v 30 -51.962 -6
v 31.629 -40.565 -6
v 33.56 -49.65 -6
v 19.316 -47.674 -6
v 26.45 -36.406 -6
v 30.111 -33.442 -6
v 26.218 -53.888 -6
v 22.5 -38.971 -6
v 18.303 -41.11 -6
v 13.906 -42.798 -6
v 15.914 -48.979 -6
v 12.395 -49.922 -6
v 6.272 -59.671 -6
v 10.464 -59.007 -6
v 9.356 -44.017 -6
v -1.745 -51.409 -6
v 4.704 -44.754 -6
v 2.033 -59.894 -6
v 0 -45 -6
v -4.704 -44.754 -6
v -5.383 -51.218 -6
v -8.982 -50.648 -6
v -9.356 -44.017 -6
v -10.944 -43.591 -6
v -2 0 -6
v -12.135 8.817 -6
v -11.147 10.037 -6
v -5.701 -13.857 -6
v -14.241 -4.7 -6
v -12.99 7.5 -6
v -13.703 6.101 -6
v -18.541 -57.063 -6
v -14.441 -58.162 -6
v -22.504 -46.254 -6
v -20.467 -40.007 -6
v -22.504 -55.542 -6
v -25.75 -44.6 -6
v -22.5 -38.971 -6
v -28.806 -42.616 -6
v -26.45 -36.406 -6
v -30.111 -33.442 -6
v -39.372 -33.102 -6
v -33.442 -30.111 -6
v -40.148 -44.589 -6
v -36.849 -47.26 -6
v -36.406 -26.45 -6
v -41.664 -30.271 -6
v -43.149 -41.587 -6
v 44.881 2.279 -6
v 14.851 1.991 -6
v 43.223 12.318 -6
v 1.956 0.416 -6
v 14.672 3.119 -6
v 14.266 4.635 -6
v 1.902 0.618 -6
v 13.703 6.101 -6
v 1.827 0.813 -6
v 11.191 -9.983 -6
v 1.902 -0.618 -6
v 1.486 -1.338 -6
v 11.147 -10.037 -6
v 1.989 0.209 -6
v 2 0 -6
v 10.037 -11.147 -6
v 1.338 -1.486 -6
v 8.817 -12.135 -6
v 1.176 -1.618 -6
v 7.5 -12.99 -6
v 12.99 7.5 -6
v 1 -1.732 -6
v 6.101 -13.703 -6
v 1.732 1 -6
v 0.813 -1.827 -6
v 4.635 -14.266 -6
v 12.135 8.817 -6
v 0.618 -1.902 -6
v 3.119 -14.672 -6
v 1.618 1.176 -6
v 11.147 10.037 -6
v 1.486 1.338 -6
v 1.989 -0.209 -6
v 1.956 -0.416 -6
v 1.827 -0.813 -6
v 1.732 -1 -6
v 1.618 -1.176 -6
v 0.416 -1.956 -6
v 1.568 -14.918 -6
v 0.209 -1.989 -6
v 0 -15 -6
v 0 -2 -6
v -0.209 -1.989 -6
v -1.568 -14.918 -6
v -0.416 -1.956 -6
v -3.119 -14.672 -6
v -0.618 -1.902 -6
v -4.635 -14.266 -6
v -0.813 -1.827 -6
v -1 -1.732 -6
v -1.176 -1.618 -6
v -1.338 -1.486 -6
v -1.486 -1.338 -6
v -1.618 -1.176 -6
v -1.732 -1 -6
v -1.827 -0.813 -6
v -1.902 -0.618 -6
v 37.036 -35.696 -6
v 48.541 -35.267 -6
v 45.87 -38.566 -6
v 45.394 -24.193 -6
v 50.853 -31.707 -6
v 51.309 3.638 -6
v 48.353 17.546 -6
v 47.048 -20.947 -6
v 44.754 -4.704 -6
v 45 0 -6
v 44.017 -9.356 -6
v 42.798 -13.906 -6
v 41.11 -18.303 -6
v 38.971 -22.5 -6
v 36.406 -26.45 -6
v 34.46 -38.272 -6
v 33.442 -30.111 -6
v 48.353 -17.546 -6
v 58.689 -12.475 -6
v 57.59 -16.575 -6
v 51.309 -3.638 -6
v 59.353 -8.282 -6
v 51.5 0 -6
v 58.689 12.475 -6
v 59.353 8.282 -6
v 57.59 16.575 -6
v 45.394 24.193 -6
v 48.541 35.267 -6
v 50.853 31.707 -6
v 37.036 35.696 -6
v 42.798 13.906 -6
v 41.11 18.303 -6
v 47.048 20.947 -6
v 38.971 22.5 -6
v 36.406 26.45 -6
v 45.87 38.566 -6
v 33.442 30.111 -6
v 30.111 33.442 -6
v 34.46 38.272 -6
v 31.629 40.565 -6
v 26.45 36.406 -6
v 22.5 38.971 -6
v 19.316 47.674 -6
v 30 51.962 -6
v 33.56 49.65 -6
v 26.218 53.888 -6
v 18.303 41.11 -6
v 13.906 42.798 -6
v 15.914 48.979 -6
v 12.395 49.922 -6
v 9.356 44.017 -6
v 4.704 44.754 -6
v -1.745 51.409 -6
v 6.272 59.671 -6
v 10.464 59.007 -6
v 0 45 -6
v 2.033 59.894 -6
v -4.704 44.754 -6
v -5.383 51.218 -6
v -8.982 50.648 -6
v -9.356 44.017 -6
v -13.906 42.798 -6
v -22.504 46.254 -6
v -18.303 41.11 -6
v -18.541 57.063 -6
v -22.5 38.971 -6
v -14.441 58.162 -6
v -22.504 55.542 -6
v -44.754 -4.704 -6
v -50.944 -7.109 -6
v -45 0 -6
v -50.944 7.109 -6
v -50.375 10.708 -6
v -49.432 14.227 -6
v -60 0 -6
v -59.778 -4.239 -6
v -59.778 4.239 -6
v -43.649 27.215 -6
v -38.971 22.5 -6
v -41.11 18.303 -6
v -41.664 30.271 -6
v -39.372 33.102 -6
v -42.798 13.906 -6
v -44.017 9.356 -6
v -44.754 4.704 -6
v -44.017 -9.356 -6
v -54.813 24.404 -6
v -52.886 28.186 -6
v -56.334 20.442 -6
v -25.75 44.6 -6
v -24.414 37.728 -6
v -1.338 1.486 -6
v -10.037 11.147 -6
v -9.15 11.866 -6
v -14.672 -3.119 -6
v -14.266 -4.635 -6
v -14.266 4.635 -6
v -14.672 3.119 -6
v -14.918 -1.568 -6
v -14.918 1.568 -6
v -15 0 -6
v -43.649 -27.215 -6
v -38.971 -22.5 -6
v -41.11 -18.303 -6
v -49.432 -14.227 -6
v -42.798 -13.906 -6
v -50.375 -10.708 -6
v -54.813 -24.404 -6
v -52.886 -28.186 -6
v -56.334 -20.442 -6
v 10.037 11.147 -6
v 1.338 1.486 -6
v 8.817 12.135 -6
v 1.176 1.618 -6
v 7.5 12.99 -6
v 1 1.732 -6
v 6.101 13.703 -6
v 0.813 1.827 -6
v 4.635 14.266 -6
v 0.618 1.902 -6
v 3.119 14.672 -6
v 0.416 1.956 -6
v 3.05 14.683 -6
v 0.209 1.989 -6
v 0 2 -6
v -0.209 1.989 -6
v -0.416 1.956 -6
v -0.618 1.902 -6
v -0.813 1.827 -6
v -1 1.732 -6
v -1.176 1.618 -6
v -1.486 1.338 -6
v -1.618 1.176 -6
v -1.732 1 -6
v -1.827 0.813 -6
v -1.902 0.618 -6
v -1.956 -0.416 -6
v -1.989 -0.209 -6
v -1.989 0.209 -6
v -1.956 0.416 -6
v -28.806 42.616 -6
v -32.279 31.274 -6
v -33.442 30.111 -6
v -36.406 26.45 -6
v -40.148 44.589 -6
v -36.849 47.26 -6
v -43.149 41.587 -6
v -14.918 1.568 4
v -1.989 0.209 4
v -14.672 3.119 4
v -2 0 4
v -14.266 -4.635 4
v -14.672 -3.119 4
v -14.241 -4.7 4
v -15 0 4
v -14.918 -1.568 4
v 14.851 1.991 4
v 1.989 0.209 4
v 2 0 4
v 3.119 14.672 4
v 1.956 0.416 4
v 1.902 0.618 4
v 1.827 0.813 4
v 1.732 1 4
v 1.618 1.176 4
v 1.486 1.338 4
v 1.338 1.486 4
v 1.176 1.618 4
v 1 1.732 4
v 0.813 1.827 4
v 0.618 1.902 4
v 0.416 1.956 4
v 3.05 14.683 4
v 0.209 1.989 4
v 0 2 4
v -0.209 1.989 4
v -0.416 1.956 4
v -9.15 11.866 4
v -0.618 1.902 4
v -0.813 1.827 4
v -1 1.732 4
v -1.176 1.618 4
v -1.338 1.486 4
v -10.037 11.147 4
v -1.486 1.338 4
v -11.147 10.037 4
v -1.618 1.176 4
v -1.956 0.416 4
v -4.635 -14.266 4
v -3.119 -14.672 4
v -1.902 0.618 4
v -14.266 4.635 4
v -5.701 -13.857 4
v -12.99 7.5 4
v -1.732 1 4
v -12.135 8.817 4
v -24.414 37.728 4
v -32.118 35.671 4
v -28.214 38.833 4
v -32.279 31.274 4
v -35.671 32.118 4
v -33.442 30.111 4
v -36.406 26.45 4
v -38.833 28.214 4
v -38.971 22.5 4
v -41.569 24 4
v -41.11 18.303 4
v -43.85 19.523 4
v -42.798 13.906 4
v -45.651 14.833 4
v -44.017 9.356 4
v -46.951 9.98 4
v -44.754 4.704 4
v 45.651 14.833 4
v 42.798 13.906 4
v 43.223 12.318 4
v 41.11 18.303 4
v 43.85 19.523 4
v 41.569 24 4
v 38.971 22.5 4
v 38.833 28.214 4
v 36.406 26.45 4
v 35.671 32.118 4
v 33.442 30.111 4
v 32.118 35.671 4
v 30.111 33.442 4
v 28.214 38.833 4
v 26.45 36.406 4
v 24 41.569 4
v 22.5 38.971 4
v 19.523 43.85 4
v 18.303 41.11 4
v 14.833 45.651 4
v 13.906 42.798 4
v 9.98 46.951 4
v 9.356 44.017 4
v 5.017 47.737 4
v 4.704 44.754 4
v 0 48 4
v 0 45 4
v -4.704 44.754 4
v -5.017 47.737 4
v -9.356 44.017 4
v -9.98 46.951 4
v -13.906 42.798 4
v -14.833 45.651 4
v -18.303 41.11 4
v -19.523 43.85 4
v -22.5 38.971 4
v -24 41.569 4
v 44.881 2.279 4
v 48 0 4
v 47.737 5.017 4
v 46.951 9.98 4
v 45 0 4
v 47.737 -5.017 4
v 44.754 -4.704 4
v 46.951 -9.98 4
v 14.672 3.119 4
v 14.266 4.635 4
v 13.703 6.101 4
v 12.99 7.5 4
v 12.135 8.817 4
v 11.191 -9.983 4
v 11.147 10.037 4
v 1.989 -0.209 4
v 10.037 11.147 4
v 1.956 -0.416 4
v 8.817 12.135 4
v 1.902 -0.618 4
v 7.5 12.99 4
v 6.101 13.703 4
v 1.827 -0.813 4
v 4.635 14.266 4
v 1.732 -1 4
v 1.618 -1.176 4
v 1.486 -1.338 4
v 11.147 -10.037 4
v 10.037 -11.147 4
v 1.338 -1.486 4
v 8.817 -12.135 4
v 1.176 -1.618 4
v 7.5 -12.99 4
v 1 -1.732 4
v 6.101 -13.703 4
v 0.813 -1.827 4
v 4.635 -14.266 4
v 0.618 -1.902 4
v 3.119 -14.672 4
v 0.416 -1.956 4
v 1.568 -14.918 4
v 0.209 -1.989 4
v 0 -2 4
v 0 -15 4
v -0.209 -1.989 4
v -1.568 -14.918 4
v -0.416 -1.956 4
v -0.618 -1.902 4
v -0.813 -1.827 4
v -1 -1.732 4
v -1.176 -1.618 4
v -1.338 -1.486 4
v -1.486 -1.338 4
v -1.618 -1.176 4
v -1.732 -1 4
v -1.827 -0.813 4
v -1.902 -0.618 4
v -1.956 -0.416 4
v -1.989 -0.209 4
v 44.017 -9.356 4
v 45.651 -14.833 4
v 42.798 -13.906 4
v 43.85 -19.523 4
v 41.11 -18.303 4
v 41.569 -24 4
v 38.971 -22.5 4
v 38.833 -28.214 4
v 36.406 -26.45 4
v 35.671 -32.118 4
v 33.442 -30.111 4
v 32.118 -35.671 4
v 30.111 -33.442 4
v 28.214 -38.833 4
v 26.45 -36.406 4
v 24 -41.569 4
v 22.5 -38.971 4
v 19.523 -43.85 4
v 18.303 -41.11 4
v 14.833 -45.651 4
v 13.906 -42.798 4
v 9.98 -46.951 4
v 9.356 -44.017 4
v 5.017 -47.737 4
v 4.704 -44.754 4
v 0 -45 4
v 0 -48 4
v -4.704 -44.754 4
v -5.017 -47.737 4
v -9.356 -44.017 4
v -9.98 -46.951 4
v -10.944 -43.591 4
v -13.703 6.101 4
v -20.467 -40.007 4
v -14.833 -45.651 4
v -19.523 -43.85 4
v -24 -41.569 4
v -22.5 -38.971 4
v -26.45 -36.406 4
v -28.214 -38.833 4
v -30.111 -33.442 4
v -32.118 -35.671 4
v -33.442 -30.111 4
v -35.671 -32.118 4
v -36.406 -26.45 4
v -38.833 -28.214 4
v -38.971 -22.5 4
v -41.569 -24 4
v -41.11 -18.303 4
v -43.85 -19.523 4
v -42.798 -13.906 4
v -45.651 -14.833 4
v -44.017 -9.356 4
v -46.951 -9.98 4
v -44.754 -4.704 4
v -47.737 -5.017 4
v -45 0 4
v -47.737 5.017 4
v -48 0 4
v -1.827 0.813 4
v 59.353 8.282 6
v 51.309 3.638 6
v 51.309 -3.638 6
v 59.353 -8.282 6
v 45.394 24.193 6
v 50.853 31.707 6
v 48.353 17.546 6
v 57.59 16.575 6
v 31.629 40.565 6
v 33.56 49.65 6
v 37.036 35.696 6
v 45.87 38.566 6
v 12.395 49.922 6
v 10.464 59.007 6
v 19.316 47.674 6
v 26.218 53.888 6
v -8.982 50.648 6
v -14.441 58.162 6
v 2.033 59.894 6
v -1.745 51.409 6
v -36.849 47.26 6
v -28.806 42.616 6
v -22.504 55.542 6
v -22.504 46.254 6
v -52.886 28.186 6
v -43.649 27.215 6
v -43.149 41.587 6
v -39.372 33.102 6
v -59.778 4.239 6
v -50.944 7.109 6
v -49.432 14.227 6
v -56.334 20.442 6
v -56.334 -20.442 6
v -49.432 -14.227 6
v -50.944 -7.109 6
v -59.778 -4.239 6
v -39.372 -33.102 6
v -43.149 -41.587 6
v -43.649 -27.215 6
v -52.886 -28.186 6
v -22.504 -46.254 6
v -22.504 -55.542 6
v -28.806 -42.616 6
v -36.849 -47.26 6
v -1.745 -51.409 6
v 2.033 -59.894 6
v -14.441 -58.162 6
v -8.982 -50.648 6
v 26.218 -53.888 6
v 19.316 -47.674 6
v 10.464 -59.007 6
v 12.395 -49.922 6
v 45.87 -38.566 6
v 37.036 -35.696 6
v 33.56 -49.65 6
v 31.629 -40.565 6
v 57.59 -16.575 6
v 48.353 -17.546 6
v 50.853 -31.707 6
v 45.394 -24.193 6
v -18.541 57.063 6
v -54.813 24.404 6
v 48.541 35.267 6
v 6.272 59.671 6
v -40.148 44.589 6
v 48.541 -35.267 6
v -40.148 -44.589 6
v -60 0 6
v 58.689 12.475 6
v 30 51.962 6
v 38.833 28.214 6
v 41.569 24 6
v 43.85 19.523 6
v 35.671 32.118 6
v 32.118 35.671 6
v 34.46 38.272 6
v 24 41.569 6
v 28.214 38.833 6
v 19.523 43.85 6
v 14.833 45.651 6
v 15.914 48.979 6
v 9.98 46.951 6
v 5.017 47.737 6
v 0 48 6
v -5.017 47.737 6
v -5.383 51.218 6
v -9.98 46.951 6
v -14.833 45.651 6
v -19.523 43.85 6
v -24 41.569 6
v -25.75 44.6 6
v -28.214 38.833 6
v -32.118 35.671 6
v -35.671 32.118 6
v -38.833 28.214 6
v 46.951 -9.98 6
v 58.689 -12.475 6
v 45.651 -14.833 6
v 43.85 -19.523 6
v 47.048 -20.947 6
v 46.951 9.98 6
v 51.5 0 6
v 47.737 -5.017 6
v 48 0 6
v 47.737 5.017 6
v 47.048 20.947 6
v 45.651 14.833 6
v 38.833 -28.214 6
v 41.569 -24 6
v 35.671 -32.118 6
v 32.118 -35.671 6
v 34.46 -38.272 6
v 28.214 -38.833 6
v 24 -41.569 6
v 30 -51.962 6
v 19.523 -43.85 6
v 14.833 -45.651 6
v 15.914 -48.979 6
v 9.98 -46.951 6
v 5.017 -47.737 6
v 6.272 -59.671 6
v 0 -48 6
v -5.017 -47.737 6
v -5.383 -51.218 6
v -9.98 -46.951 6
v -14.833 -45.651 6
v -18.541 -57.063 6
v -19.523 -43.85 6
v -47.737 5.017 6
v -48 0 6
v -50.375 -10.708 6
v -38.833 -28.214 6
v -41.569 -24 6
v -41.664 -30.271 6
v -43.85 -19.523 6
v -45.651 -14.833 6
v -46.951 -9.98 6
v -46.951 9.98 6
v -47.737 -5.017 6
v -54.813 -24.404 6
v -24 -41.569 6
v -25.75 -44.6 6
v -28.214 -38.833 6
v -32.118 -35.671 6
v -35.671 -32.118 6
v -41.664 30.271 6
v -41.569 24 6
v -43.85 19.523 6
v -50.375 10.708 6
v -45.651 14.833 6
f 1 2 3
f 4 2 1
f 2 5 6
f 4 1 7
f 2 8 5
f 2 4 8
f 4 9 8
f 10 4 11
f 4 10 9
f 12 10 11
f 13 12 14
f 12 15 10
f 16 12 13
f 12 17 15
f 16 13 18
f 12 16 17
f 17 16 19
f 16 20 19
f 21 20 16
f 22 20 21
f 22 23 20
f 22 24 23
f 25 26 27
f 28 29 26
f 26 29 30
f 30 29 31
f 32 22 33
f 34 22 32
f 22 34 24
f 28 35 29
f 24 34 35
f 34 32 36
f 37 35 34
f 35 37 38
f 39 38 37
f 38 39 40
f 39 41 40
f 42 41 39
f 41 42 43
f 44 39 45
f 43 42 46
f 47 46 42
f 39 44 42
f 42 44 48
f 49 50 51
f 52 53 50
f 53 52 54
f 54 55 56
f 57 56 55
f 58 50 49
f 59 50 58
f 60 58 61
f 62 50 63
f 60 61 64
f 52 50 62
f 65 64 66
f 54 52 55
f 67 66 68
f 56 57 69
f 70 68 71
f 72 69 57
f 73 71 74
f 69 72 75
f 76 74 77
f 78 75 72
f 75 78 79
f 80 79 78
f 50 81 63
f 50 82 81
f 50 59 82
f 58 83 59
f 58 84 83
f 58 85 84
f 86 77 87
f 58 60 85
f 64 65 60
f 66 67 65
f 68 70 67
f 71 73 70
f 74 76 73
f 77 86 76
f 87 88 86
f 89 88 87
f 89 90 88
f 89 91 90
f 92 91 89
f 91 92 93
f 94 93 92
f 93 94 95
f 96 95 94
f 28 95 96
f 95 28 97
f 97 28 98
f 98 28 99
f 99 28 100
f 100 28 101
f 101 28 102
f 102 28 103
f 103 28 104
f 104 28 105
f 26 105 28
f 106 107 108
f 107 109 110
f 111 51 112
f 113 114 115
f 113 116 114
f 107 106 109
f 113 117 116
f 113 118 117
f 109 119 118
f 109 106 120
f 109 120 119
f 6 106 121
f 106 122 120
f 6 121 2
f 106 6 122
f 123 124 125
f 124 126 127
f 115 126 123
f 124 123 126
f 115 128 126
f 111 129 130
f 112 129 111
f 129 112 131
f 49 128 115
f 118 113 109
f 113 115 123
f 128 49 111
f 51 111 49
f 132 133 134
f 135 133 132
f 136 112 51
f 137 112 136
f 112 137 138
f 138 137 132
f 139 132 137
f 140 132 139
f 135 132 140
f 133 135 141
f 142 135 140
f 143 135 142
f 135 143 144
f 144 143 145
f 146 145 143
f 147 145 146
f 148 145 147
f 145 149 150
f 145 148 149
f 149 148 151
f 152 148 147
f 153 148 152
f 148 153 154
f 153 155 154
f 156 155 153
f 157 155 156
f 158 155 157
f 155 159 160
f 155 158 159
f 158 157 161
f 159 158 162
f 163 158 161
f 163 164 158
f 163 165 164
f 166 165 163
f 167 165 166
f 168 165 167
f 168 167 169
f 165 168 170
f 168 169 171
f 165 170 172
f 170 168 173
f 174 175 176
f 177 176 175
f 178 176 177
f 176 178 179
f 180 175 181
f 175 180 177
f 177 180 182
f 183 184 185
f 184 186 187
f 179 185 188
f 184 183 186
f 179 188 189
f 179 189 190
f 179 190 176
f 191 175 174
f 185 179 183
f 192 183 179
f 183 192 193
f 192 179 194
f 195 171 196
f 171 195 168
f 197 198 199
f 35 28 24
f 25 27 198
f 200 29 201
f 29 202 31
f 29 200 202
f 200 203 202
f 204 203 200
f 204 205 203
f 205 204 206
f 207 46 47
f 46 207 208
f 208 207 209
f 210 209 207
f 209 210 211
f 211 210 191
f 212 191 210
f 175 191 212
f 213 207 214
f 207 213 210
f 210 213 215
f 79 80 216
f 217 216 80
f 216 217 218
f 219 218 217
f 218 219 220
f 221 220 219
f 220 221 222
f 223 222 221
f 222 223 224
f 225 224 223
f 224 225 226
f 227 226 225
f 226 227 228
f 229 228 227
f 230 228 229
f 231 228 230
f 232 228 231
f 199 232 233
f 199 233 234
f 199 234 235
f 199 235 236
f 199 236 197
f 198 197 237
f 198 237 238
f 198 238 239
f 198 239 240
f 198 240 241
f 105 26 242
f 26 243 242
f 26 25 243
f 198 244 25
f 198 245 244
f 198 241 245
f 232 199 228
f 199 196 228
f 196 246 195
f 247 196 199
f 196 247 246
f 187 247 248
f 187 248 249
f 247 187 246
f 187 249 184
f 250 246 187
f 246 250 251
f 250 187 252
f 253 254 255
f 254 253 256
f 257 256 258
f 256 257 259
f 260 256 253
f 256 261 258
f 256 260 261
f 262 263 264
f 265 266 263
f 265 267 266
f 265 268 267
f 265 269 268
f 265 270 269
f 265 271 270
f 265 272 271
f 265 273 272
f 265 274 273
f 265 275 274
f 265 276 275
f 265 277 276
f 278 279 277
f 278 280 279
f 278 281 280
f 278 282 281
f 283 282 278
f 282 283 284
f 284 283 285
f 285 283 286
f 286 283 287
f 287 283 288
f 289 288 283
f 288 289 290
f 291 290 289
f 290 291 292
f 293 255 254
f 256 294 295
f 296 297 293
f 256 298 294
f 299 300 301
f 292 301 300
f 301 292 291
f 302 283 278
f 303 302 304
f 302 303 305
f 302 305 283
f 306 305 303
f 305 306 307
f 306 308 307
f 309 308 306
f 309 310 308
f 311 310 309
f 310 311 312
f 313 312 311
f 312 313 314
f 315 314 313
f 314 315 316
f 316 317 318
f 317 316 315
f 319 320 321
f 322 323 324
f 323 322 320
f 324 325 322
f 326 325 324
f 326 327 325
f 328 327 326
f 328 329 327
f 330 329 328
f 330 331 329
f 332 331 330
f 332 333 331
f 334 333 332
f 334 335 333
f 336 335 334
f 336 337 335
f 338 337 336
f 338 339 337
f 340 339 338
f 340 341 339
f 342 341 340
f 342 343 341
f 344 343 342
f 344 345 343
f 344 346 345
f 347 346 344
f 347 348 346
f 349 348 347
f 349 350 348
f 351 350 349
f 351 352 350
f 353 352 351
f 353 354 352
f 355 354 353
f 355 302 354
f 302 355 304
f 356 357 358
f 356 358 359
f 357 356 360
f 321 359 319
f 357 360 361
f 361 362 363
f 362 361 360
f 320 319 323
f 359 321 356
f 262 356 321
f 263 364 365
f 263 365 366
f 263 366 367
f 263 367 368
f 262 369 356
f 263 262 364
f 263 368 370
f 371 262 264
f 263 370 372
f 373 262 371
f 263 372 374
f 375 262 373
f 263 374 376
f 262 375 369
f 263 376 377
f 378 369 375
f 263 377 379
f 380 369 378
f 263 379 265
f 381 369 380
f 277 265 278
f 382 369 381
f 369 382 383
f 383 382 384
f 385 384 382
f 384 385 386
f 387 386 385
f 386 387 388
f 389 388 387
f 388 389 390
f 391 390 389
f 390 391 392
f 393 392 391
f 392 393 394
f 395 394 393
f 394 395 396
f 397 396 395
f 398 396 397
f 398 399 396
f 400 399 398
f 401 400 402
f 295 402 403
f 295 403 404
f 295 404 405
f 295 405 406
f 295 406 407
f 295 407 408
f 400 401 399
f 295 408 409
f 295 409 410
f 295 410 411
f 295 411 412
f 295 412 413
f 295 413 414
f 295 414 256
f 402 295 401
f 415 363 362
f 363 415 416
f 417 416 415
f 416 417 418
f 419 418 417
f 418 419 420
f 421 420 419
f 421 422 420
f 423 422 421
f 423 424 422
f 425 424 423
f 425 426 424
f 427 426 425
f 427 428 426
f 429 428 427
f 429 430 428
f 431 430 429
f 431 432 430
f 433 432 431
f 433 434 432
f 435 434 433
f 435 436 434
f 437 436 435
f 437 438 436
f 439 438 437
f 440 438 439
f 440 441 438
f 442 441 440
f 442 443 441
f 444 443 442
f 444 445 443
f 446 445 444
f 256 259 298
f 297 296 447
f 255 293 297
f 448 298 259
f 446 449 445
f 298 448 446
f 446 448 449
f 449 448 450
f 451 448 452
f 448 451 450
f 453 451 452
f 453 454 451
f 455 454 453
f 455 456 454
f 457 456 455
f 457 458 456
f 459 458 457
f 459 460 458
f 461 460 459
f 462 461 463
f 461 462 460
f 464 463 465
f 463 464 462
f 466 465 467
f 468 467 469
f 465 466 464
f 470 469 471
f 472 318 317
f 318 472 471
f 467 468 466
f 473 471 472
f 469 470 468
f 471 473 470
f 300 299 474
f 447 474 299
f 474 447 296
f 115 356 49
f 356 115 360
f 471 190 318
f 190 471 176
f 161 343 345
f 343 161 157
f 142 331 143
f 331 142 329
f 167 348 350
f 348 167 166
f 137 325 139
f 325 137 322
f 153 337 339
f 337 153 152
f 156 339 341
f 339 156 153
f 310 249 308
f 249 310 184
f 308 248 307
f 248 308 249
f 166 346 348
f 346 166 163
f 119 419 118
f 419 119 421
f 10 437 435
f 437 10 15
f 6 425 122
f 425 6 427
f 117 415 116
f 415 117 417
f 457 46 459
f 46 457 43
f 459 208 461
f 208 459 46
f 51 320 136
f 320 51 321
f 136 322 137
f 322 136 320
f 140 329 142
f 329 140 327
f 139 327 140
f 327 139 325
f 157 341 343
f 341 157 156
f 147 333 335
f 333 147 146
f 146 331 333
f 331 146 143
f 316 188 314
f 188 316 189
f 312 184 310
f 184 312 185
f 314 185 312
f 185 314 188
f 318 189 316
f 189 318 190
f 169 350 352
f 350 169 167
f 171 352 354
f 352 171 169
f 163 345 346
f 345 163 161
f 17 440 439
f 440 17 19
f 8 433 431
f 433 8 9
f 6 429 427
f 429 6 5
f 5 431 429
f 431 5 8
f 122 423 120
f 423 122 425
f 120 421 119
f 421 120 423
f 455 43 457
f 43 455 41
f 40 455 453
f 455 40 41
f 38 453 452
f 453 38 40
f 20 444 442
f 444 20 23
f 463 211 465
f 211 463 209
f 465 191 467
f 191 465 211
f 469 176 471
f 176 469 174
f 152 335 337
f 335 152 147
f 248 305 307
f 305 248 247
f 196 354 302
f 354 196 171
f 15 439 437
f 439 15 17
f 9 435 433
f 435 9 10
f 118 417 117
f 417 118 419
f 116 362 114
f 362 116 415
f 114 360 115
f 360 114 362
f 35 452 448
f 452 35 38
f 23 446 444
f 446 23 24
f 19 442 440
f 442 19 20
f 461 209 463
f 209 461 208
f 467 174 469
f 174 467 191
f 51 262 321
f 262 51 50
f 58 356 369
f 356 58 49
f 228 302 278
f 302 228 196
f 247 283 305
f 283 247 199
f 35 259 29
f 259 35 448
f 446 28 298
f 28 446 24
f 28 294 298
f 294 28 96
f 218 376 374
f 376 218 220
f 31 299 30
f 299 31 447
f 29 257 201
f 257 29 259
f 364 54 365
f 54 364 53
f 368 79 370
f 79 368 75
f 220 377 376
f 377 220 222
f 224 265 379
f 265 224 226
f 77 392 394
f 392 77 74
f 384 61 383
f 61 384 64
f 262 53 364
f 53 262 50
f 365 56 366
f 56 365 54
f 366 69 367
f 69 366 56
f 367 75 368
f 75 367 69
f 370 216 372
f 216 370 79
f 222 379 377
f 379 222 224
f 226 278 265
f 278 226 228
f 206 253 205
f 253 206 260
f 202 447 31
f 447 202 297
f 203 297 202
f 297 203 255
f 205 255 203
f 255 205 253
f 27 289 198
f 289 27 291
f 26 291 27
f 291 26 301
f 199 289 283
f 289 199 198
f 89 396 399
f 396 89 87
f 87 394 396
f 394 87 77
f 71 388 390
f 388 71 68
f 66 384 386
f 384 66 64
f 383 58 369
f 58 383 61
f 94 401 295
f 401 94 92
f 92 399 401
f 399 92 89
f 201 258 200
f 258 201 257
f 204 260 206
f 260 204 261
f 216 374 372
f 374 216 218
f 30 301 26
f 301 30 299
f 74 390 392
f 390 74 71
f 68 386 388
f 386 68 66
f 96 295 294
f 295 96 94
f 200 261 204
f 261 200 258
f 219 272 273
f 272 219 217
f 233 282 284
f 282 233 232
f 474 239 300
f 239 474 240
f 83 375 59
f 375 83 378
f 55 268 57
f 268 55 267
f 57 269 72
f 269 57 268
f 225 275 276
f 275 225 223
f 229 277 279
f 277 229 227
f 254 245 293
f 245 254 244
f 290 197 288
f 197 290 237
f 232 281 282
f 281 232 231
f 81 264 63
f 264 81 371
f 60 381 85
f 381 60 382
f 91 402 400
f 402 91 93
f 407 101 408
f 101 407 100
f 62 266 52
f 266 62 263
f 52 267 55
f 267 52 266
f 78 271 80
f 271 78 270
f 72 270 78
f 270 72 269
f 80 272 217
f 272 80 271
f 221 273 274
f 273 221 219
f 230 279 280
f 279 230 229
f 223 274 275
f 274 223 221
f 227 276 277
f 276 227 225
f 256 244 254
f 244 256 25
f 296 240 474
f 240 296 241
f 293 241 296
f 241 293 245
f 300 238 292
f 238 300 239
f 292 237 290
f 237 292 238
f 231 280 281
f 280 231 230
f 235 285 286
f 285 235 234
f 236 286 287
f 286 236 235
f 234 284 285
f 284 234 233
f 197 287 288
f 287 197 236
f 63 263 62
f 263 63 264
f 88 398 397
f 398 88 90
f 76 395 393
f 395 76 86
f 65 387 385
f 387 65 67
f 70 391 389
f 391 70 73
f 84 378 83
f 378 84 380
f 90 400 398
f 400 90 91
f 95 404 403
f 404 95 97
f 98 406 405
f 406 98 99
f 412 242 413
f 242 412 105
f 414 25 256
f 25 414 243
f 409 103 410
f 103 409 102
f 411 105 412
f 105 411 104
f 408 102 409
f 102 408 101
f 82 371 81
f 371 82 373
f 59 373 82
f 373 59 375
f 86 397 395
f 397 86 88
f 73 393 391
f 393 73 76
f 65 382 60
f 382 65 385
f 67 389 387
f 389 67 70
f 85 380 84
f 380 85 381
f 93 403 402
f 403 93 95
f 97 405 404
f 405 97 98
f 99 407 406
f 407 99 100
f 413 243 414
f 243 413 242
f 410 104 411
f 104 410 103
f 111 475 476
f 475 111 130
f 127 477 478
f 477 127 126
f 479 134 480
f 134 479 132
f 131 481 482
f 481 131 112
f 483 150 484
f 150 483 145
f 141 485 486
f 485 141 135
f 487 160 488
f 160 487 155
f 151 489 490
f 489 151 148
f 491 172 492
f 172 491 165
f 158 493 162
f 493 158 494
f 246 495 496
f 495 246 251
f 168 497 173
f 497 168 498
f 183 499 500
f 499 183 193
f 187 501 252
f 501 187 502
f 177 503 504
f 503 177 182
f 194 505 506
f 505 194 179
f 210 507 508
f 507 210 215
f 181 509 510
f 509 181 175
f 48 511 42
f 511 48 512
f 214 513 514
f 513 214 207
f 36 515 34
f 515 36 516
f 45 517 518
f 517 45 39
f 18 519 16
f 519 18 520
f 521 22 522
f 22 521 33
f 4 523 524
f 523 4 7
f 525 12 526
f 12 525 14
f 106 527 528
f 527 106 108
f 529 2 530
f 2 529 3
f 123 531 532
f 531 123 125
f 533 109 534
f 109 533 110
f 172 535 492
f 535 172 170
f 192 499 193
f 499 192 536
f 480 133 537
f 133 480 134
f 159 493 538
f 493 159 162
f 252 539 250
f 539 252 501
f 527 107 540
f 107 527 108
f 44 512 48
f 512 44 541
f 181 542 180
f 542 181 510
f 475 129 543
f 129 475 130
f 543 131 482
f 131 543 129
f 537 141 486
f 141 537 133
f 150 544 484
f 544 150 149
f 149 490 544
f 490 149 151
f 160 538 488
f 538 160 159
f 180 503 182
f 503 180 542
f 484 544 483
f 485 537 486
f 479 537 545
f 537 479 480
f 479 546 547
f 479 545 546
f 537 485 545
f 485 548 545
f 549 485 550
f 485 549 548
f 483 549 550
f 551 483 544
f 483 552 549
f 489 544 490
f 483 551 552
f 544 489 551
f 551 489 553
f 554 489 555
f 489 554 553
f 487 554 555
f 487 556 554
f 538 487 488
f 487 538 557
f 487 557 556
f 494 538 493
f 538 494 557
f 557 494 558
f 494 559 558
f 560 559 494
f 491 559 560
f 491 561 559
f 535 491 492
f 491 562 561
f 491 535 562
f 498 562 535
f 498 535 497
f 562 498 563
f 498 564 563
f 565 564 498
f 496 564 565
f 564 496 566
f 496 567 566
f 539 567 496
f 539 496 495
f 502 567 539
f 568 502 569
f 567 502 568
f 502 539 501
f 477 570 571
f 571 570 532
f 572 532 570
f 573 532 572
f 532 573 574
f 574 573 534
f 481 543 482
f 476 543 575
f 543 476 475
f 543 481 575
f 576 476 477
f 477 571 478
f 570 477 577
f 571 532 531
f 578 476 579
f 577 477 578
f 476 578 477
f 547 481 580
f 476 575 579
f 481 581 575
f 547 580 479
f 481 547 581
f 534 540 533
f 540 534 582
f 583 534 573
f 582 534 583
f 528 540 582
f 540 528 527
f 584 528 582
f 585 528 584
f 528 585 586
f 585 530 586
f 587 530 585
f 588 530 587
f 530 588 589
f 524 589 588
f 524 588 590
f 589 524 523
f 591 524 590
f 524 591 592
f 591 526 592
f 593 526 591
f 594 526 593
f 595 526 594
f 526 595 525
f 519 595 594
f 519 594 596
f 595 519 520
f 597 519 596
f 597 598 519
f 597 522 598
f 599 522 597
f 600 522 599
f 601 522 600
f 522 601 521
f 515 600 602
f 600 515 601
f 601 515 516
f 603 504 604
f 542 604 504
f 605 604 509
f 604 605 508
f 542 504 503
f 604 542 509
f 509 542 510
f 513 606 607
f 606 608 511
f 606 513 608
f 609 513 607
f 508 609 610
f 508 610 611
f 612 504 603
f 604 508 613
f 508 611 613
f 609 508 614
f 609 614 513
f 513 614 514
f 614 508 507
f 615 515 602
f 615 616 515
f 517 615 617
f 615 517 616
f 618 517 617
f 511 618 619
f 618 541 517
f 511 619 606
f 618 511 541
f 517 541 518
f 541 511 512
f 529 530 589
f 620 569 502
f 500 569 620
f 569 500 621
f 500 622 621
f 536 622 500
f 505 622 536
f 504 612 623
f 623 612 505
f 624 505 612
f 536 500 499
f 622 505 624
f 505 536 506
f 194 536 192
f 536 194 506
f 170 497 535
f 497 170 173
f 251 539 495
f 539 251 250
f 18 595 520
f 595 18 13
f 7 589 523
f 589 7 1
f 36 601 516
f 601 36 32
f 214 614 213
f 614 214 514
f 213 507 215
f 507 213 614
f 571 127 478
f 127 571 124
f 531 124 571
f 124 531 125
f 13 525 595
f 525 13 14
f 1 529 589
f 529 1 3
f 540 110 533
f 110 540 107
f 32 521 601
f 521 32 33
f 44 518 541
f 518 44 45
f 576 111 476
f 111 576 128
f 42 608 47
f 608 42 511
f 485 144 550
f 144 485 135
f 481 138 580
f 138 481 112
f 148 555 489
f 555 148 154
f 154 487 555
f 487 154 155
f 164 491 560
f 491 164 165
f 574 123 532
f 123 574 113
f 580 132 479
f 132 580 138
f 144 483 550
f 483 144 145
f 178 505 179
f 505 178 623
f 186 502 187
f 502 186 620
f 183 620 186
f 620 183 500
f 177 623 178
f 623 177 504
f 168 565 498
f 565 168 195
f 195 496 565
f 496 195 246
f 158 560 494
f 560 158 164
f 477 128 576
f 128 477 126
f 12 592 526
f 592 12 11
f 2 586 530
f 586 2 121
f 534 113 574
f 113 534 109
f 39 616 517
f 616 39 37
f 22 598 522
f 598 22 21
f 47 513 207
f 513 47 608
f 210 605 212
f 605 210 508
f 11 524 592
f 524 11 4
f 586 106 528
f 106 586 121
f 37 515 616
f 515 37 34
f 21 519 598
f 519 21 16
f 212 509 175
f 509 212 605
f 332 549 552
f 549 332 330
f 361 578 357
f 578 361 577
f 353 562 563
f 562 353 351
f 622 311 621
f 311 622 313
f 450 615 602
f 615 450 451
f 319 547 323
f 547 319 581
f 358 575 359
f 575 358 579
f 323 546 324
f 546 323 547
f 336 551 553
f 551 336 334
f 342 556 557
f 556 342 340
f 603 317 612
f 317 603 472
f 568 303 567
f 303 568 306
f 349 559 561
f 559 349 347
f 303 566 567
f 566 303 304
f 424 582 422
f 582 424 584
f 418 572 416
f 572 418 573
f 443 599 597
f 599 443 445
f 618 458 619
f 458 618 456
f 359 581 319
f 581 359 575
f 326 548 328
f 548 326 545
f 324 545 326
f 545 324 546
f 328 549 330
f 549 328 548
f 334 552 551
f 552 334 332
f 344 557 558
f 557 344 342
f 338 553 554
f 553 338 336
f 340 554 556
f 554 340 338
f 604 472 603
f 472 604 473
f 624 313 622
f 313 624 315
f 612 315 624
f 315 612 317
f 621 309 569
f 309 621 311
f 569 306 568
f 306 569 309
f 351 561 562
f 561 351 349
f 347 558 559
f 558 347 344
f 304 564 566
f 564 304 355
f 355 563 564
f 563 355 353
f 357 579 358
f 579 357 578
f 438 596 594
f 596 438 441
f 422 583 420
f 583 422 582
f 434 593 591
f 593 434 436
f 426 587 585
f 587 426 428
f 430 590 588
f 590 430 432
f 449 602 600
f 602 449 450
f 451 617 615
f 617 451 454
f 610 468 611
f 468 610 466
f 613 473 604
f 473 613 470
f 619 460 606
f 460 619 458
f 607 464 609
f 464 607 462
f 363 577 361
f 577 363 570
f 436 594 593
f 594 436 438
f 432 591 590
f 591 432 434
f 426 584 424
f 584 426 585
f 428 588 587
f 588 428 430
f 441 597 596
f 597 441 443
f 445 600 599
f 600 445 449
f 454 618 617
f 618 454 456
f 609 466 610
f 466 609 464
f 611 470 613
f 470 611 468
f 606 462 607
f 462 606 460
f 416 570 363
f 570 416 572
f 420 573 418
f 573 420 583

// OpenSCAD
// file: Gear_External.scad
/*---------------------------------------------------------\
|     From: Ekobots Innovation Ltda - www.ekobots.com      |
|       by: Juan Sirgado y Antico - www.jsya.com.br        |
|----------------------------------------------------------|
|          Program Gear External - 2019/05/08              |
|               All rights reserved 2019                   |
|---------------------------------------------------------*/
ac=0.2;
//---------------------------------------------------------|
module gear_external
(
  // gear parameters
  num_teeth=30,      // number of teeth
  tooth_diameter=8,  //tooth diameter
  tooth_clear=0.15,  // tooth clear
  tooth_deep=0.15,   // tooth deep
  gear_height=12,     // gear height
  // central hole parameters
  hole_diameter=95    // diameter of central hole
)
{
   // gear values
   tooth_radius = tooth_diameter/2;                 // tooth radius
   hole_radius = hole_diameter/2;                   // hole radius
   tooth_distance = tooth_diameter+tooth_clear;     // tooth distance
   gear_radius=(tooth_distance*num_teeth)/3.141592; // gear ray
   tooth_angle=360/num_teeth;                       // tooth rotation
   tooth_end=360-tooth_angle+0.1; // (round error)  // tooth end
   cylinder_faces=36;                               // cylinder faces
   // gear rendering
   difference()
   {
      union()
      {
         cylinder(gear_height,
                  gear_radius,
                  gear_radius,center=true,$fn=cylinder_faces);
         for(gear_angle=[0:tooth_angle:tooth_end])
         {
            rotate([0,0,gear_angle]) translate([gear_radius,0,0])
            {
               cylinder(gear_height,
                        tooth_radius,
                        tooth_radius,center=true,$fn=cylinder_faces);
            }
         }
      }
      for(gear_angle=[0:tooth_angle:tooth_end])
      {
         rotate([0,0,gear_angle+(tooth_angle/2)]) 
            {
            translate([gear_radius-tooth_deep,0,0])
               cylinder(gear_height+0.2,
                        tooth_radius+tooth_clear,
                        tooth_radius+tooth_clear,center=true,$fn=cylinder_faces);
            translate([gear_radius,0,0])
               cube([tooth_deep*2,
                     (tooth_radius+tooth_clear)*2,
                     gear_height+0.2],center=true);
            }
      }
      // central hole 
      cylinder(gear_height+0.2,
               hole_radius, 
               hole_radius,center=true,$fn=cylinder_faces);
   }
}
//---------------------------------------------------------|
// file: Gear_Trapezoidal_Tooth.scad
/*---------------------------------------------------------\
|     From: Ekobots Innovation Ltda - www.ekobots.com      |
|       by: Juan Sirgado y Antico - www.jsya.com.br        |
|----------------------------------------------------------|
|       Program Gear Trapezoidal Tooth - 2019/05/08        |
|               All rights reserved 2019                   |
|---------------------------------------------------------*/
ac=0.2;
fn=60;
pi=3.141592;
rt=-($t*360);
// gear();
// rotate_gear(); // Animate Parametes are (FPS: 60 Steps: 300)
//---------------------------------------------------------|
module rotate_gear()
{
   translate([56.5,0,0])
      rotate([0,0,-rt])
         gear();
   translate([-56.5,0,0])
      rotate([0,0,rt])
         gear();
}
//Gear Parameters
//---------------------------------------------------------|
module gear(
//Gear Parameters
n_teeth=15, // n_teeth -> number of teeth
h_teeth=10,  // h_teeth -> height of teeth
a_teeth=30, // a_teeth -> angle of teeth 
d_gear=120, // d_gear  -> diameter of gear (external)
h_gear=12,  // h_gear  -> gear height
c_hole=4)   // d_hole  -> diamenter of the center hole(0=none)
{
   difference()
   {
      translate([0,0,0])
         cylinder(h=h_gear,d=d_gear,center=true,$fn=60);
      translate([0,0,0])
         cylinder(h=h_gear+ac,d=d_gear-(h_teeth*2),center=true,$fn=60);
      dr=360/n_teeth;
      ss=d_gear*pi/(n_teeth*2);
      for(r=[0:dr:360-dr])
         rotate([0,0,r])
            translate([(d_gear/2)-h_teeth/2,0,0])
            {
               translate([0,0,0])
                  cube([h_teeth*2,ss/2,h_gear+ac],center=true);
               translate([0,(ss/4)-1,0])
                  rotate([0,0,a_teeth])
                     cube([h_teeth*4,ss/2,h_gear+ac],center=true);
               translate([0,-(ss/4)+1,0])
                  rotate([0,0,-a_teeth])
                     cube([h_teeth*4,ss/2,h_gear+ac],center=true);
            }      
   }
   difference()
   {
      translate([0,0,0])
         cylinder(h=12,d=103,center=true,$fn=60);
      translate([0,0,0])
         cylinder(h=12+ac,d=96,center=true,$fn=60);
   }
}
//---------------------------------------------------------|
// main file
/*---------------------------------------------------------\
|     From: Ekobots Innovation Ltda - www.ekobots.com      |
|       by: Juan Sirgado y Antico - www.jsya.com.br        |
|----------------------------------------------------------|
|          Program Gear External - 2019/05/08              |
|               All rights reserved 2019                   |
|---------------------------------------------------------*/
include <Gear_Trapezoidal_Tooth.scad>
include <Gear_External.scad>
ac=0.2;
fn=60;
pi=3.141592;
rt=-($t*360);
gear_full();
//gear_rotate();
//---------------------------------------------------------|
module gear_full()
{
   union()
   {
   //    translate([0,0,-1])
   //       gear_06();
   //    translate([0,0,0])
   //       gear_external(num_teeth=21);
       translate([0,0,-1])
          gear_06();
       translate([0,0,0])
          gear();
   }
}
//---------------------------------------------------------|
module gear_rotate()
{
   translate([56.5,0,0])
      rotate([0,0,-rt])
         gear_full();
   translate([-56.5,0,0])
      rotate([0,0,rt])
         gear_full();
}
//---------------------------------------------------------|
module gear_06()
{
   difference()
   {
      translate([0,0,0])
         cylinder(h=10,d=100,center=true,$fn=60);
      translate([0,0,0])
         cylinder(h=10+ac,d=90,center=true,$fn=60);
   }
   difference()
   {
      union()
      {
         for(r=[0:120:240])
            rotate([0,0,r])
               translate([24,0,0])
                  rotate([0,0,20])
                     cube([50,10,10],center=true);
         translate([0,0,0])
            cylinder(h=10,d=30,center=true,$fn=60);
      }
      translate([0,0,0])
         cylinder(h=10+ac,d=4,center=true,$fn=60);
   }
}
//---------------------------------------------------------|
